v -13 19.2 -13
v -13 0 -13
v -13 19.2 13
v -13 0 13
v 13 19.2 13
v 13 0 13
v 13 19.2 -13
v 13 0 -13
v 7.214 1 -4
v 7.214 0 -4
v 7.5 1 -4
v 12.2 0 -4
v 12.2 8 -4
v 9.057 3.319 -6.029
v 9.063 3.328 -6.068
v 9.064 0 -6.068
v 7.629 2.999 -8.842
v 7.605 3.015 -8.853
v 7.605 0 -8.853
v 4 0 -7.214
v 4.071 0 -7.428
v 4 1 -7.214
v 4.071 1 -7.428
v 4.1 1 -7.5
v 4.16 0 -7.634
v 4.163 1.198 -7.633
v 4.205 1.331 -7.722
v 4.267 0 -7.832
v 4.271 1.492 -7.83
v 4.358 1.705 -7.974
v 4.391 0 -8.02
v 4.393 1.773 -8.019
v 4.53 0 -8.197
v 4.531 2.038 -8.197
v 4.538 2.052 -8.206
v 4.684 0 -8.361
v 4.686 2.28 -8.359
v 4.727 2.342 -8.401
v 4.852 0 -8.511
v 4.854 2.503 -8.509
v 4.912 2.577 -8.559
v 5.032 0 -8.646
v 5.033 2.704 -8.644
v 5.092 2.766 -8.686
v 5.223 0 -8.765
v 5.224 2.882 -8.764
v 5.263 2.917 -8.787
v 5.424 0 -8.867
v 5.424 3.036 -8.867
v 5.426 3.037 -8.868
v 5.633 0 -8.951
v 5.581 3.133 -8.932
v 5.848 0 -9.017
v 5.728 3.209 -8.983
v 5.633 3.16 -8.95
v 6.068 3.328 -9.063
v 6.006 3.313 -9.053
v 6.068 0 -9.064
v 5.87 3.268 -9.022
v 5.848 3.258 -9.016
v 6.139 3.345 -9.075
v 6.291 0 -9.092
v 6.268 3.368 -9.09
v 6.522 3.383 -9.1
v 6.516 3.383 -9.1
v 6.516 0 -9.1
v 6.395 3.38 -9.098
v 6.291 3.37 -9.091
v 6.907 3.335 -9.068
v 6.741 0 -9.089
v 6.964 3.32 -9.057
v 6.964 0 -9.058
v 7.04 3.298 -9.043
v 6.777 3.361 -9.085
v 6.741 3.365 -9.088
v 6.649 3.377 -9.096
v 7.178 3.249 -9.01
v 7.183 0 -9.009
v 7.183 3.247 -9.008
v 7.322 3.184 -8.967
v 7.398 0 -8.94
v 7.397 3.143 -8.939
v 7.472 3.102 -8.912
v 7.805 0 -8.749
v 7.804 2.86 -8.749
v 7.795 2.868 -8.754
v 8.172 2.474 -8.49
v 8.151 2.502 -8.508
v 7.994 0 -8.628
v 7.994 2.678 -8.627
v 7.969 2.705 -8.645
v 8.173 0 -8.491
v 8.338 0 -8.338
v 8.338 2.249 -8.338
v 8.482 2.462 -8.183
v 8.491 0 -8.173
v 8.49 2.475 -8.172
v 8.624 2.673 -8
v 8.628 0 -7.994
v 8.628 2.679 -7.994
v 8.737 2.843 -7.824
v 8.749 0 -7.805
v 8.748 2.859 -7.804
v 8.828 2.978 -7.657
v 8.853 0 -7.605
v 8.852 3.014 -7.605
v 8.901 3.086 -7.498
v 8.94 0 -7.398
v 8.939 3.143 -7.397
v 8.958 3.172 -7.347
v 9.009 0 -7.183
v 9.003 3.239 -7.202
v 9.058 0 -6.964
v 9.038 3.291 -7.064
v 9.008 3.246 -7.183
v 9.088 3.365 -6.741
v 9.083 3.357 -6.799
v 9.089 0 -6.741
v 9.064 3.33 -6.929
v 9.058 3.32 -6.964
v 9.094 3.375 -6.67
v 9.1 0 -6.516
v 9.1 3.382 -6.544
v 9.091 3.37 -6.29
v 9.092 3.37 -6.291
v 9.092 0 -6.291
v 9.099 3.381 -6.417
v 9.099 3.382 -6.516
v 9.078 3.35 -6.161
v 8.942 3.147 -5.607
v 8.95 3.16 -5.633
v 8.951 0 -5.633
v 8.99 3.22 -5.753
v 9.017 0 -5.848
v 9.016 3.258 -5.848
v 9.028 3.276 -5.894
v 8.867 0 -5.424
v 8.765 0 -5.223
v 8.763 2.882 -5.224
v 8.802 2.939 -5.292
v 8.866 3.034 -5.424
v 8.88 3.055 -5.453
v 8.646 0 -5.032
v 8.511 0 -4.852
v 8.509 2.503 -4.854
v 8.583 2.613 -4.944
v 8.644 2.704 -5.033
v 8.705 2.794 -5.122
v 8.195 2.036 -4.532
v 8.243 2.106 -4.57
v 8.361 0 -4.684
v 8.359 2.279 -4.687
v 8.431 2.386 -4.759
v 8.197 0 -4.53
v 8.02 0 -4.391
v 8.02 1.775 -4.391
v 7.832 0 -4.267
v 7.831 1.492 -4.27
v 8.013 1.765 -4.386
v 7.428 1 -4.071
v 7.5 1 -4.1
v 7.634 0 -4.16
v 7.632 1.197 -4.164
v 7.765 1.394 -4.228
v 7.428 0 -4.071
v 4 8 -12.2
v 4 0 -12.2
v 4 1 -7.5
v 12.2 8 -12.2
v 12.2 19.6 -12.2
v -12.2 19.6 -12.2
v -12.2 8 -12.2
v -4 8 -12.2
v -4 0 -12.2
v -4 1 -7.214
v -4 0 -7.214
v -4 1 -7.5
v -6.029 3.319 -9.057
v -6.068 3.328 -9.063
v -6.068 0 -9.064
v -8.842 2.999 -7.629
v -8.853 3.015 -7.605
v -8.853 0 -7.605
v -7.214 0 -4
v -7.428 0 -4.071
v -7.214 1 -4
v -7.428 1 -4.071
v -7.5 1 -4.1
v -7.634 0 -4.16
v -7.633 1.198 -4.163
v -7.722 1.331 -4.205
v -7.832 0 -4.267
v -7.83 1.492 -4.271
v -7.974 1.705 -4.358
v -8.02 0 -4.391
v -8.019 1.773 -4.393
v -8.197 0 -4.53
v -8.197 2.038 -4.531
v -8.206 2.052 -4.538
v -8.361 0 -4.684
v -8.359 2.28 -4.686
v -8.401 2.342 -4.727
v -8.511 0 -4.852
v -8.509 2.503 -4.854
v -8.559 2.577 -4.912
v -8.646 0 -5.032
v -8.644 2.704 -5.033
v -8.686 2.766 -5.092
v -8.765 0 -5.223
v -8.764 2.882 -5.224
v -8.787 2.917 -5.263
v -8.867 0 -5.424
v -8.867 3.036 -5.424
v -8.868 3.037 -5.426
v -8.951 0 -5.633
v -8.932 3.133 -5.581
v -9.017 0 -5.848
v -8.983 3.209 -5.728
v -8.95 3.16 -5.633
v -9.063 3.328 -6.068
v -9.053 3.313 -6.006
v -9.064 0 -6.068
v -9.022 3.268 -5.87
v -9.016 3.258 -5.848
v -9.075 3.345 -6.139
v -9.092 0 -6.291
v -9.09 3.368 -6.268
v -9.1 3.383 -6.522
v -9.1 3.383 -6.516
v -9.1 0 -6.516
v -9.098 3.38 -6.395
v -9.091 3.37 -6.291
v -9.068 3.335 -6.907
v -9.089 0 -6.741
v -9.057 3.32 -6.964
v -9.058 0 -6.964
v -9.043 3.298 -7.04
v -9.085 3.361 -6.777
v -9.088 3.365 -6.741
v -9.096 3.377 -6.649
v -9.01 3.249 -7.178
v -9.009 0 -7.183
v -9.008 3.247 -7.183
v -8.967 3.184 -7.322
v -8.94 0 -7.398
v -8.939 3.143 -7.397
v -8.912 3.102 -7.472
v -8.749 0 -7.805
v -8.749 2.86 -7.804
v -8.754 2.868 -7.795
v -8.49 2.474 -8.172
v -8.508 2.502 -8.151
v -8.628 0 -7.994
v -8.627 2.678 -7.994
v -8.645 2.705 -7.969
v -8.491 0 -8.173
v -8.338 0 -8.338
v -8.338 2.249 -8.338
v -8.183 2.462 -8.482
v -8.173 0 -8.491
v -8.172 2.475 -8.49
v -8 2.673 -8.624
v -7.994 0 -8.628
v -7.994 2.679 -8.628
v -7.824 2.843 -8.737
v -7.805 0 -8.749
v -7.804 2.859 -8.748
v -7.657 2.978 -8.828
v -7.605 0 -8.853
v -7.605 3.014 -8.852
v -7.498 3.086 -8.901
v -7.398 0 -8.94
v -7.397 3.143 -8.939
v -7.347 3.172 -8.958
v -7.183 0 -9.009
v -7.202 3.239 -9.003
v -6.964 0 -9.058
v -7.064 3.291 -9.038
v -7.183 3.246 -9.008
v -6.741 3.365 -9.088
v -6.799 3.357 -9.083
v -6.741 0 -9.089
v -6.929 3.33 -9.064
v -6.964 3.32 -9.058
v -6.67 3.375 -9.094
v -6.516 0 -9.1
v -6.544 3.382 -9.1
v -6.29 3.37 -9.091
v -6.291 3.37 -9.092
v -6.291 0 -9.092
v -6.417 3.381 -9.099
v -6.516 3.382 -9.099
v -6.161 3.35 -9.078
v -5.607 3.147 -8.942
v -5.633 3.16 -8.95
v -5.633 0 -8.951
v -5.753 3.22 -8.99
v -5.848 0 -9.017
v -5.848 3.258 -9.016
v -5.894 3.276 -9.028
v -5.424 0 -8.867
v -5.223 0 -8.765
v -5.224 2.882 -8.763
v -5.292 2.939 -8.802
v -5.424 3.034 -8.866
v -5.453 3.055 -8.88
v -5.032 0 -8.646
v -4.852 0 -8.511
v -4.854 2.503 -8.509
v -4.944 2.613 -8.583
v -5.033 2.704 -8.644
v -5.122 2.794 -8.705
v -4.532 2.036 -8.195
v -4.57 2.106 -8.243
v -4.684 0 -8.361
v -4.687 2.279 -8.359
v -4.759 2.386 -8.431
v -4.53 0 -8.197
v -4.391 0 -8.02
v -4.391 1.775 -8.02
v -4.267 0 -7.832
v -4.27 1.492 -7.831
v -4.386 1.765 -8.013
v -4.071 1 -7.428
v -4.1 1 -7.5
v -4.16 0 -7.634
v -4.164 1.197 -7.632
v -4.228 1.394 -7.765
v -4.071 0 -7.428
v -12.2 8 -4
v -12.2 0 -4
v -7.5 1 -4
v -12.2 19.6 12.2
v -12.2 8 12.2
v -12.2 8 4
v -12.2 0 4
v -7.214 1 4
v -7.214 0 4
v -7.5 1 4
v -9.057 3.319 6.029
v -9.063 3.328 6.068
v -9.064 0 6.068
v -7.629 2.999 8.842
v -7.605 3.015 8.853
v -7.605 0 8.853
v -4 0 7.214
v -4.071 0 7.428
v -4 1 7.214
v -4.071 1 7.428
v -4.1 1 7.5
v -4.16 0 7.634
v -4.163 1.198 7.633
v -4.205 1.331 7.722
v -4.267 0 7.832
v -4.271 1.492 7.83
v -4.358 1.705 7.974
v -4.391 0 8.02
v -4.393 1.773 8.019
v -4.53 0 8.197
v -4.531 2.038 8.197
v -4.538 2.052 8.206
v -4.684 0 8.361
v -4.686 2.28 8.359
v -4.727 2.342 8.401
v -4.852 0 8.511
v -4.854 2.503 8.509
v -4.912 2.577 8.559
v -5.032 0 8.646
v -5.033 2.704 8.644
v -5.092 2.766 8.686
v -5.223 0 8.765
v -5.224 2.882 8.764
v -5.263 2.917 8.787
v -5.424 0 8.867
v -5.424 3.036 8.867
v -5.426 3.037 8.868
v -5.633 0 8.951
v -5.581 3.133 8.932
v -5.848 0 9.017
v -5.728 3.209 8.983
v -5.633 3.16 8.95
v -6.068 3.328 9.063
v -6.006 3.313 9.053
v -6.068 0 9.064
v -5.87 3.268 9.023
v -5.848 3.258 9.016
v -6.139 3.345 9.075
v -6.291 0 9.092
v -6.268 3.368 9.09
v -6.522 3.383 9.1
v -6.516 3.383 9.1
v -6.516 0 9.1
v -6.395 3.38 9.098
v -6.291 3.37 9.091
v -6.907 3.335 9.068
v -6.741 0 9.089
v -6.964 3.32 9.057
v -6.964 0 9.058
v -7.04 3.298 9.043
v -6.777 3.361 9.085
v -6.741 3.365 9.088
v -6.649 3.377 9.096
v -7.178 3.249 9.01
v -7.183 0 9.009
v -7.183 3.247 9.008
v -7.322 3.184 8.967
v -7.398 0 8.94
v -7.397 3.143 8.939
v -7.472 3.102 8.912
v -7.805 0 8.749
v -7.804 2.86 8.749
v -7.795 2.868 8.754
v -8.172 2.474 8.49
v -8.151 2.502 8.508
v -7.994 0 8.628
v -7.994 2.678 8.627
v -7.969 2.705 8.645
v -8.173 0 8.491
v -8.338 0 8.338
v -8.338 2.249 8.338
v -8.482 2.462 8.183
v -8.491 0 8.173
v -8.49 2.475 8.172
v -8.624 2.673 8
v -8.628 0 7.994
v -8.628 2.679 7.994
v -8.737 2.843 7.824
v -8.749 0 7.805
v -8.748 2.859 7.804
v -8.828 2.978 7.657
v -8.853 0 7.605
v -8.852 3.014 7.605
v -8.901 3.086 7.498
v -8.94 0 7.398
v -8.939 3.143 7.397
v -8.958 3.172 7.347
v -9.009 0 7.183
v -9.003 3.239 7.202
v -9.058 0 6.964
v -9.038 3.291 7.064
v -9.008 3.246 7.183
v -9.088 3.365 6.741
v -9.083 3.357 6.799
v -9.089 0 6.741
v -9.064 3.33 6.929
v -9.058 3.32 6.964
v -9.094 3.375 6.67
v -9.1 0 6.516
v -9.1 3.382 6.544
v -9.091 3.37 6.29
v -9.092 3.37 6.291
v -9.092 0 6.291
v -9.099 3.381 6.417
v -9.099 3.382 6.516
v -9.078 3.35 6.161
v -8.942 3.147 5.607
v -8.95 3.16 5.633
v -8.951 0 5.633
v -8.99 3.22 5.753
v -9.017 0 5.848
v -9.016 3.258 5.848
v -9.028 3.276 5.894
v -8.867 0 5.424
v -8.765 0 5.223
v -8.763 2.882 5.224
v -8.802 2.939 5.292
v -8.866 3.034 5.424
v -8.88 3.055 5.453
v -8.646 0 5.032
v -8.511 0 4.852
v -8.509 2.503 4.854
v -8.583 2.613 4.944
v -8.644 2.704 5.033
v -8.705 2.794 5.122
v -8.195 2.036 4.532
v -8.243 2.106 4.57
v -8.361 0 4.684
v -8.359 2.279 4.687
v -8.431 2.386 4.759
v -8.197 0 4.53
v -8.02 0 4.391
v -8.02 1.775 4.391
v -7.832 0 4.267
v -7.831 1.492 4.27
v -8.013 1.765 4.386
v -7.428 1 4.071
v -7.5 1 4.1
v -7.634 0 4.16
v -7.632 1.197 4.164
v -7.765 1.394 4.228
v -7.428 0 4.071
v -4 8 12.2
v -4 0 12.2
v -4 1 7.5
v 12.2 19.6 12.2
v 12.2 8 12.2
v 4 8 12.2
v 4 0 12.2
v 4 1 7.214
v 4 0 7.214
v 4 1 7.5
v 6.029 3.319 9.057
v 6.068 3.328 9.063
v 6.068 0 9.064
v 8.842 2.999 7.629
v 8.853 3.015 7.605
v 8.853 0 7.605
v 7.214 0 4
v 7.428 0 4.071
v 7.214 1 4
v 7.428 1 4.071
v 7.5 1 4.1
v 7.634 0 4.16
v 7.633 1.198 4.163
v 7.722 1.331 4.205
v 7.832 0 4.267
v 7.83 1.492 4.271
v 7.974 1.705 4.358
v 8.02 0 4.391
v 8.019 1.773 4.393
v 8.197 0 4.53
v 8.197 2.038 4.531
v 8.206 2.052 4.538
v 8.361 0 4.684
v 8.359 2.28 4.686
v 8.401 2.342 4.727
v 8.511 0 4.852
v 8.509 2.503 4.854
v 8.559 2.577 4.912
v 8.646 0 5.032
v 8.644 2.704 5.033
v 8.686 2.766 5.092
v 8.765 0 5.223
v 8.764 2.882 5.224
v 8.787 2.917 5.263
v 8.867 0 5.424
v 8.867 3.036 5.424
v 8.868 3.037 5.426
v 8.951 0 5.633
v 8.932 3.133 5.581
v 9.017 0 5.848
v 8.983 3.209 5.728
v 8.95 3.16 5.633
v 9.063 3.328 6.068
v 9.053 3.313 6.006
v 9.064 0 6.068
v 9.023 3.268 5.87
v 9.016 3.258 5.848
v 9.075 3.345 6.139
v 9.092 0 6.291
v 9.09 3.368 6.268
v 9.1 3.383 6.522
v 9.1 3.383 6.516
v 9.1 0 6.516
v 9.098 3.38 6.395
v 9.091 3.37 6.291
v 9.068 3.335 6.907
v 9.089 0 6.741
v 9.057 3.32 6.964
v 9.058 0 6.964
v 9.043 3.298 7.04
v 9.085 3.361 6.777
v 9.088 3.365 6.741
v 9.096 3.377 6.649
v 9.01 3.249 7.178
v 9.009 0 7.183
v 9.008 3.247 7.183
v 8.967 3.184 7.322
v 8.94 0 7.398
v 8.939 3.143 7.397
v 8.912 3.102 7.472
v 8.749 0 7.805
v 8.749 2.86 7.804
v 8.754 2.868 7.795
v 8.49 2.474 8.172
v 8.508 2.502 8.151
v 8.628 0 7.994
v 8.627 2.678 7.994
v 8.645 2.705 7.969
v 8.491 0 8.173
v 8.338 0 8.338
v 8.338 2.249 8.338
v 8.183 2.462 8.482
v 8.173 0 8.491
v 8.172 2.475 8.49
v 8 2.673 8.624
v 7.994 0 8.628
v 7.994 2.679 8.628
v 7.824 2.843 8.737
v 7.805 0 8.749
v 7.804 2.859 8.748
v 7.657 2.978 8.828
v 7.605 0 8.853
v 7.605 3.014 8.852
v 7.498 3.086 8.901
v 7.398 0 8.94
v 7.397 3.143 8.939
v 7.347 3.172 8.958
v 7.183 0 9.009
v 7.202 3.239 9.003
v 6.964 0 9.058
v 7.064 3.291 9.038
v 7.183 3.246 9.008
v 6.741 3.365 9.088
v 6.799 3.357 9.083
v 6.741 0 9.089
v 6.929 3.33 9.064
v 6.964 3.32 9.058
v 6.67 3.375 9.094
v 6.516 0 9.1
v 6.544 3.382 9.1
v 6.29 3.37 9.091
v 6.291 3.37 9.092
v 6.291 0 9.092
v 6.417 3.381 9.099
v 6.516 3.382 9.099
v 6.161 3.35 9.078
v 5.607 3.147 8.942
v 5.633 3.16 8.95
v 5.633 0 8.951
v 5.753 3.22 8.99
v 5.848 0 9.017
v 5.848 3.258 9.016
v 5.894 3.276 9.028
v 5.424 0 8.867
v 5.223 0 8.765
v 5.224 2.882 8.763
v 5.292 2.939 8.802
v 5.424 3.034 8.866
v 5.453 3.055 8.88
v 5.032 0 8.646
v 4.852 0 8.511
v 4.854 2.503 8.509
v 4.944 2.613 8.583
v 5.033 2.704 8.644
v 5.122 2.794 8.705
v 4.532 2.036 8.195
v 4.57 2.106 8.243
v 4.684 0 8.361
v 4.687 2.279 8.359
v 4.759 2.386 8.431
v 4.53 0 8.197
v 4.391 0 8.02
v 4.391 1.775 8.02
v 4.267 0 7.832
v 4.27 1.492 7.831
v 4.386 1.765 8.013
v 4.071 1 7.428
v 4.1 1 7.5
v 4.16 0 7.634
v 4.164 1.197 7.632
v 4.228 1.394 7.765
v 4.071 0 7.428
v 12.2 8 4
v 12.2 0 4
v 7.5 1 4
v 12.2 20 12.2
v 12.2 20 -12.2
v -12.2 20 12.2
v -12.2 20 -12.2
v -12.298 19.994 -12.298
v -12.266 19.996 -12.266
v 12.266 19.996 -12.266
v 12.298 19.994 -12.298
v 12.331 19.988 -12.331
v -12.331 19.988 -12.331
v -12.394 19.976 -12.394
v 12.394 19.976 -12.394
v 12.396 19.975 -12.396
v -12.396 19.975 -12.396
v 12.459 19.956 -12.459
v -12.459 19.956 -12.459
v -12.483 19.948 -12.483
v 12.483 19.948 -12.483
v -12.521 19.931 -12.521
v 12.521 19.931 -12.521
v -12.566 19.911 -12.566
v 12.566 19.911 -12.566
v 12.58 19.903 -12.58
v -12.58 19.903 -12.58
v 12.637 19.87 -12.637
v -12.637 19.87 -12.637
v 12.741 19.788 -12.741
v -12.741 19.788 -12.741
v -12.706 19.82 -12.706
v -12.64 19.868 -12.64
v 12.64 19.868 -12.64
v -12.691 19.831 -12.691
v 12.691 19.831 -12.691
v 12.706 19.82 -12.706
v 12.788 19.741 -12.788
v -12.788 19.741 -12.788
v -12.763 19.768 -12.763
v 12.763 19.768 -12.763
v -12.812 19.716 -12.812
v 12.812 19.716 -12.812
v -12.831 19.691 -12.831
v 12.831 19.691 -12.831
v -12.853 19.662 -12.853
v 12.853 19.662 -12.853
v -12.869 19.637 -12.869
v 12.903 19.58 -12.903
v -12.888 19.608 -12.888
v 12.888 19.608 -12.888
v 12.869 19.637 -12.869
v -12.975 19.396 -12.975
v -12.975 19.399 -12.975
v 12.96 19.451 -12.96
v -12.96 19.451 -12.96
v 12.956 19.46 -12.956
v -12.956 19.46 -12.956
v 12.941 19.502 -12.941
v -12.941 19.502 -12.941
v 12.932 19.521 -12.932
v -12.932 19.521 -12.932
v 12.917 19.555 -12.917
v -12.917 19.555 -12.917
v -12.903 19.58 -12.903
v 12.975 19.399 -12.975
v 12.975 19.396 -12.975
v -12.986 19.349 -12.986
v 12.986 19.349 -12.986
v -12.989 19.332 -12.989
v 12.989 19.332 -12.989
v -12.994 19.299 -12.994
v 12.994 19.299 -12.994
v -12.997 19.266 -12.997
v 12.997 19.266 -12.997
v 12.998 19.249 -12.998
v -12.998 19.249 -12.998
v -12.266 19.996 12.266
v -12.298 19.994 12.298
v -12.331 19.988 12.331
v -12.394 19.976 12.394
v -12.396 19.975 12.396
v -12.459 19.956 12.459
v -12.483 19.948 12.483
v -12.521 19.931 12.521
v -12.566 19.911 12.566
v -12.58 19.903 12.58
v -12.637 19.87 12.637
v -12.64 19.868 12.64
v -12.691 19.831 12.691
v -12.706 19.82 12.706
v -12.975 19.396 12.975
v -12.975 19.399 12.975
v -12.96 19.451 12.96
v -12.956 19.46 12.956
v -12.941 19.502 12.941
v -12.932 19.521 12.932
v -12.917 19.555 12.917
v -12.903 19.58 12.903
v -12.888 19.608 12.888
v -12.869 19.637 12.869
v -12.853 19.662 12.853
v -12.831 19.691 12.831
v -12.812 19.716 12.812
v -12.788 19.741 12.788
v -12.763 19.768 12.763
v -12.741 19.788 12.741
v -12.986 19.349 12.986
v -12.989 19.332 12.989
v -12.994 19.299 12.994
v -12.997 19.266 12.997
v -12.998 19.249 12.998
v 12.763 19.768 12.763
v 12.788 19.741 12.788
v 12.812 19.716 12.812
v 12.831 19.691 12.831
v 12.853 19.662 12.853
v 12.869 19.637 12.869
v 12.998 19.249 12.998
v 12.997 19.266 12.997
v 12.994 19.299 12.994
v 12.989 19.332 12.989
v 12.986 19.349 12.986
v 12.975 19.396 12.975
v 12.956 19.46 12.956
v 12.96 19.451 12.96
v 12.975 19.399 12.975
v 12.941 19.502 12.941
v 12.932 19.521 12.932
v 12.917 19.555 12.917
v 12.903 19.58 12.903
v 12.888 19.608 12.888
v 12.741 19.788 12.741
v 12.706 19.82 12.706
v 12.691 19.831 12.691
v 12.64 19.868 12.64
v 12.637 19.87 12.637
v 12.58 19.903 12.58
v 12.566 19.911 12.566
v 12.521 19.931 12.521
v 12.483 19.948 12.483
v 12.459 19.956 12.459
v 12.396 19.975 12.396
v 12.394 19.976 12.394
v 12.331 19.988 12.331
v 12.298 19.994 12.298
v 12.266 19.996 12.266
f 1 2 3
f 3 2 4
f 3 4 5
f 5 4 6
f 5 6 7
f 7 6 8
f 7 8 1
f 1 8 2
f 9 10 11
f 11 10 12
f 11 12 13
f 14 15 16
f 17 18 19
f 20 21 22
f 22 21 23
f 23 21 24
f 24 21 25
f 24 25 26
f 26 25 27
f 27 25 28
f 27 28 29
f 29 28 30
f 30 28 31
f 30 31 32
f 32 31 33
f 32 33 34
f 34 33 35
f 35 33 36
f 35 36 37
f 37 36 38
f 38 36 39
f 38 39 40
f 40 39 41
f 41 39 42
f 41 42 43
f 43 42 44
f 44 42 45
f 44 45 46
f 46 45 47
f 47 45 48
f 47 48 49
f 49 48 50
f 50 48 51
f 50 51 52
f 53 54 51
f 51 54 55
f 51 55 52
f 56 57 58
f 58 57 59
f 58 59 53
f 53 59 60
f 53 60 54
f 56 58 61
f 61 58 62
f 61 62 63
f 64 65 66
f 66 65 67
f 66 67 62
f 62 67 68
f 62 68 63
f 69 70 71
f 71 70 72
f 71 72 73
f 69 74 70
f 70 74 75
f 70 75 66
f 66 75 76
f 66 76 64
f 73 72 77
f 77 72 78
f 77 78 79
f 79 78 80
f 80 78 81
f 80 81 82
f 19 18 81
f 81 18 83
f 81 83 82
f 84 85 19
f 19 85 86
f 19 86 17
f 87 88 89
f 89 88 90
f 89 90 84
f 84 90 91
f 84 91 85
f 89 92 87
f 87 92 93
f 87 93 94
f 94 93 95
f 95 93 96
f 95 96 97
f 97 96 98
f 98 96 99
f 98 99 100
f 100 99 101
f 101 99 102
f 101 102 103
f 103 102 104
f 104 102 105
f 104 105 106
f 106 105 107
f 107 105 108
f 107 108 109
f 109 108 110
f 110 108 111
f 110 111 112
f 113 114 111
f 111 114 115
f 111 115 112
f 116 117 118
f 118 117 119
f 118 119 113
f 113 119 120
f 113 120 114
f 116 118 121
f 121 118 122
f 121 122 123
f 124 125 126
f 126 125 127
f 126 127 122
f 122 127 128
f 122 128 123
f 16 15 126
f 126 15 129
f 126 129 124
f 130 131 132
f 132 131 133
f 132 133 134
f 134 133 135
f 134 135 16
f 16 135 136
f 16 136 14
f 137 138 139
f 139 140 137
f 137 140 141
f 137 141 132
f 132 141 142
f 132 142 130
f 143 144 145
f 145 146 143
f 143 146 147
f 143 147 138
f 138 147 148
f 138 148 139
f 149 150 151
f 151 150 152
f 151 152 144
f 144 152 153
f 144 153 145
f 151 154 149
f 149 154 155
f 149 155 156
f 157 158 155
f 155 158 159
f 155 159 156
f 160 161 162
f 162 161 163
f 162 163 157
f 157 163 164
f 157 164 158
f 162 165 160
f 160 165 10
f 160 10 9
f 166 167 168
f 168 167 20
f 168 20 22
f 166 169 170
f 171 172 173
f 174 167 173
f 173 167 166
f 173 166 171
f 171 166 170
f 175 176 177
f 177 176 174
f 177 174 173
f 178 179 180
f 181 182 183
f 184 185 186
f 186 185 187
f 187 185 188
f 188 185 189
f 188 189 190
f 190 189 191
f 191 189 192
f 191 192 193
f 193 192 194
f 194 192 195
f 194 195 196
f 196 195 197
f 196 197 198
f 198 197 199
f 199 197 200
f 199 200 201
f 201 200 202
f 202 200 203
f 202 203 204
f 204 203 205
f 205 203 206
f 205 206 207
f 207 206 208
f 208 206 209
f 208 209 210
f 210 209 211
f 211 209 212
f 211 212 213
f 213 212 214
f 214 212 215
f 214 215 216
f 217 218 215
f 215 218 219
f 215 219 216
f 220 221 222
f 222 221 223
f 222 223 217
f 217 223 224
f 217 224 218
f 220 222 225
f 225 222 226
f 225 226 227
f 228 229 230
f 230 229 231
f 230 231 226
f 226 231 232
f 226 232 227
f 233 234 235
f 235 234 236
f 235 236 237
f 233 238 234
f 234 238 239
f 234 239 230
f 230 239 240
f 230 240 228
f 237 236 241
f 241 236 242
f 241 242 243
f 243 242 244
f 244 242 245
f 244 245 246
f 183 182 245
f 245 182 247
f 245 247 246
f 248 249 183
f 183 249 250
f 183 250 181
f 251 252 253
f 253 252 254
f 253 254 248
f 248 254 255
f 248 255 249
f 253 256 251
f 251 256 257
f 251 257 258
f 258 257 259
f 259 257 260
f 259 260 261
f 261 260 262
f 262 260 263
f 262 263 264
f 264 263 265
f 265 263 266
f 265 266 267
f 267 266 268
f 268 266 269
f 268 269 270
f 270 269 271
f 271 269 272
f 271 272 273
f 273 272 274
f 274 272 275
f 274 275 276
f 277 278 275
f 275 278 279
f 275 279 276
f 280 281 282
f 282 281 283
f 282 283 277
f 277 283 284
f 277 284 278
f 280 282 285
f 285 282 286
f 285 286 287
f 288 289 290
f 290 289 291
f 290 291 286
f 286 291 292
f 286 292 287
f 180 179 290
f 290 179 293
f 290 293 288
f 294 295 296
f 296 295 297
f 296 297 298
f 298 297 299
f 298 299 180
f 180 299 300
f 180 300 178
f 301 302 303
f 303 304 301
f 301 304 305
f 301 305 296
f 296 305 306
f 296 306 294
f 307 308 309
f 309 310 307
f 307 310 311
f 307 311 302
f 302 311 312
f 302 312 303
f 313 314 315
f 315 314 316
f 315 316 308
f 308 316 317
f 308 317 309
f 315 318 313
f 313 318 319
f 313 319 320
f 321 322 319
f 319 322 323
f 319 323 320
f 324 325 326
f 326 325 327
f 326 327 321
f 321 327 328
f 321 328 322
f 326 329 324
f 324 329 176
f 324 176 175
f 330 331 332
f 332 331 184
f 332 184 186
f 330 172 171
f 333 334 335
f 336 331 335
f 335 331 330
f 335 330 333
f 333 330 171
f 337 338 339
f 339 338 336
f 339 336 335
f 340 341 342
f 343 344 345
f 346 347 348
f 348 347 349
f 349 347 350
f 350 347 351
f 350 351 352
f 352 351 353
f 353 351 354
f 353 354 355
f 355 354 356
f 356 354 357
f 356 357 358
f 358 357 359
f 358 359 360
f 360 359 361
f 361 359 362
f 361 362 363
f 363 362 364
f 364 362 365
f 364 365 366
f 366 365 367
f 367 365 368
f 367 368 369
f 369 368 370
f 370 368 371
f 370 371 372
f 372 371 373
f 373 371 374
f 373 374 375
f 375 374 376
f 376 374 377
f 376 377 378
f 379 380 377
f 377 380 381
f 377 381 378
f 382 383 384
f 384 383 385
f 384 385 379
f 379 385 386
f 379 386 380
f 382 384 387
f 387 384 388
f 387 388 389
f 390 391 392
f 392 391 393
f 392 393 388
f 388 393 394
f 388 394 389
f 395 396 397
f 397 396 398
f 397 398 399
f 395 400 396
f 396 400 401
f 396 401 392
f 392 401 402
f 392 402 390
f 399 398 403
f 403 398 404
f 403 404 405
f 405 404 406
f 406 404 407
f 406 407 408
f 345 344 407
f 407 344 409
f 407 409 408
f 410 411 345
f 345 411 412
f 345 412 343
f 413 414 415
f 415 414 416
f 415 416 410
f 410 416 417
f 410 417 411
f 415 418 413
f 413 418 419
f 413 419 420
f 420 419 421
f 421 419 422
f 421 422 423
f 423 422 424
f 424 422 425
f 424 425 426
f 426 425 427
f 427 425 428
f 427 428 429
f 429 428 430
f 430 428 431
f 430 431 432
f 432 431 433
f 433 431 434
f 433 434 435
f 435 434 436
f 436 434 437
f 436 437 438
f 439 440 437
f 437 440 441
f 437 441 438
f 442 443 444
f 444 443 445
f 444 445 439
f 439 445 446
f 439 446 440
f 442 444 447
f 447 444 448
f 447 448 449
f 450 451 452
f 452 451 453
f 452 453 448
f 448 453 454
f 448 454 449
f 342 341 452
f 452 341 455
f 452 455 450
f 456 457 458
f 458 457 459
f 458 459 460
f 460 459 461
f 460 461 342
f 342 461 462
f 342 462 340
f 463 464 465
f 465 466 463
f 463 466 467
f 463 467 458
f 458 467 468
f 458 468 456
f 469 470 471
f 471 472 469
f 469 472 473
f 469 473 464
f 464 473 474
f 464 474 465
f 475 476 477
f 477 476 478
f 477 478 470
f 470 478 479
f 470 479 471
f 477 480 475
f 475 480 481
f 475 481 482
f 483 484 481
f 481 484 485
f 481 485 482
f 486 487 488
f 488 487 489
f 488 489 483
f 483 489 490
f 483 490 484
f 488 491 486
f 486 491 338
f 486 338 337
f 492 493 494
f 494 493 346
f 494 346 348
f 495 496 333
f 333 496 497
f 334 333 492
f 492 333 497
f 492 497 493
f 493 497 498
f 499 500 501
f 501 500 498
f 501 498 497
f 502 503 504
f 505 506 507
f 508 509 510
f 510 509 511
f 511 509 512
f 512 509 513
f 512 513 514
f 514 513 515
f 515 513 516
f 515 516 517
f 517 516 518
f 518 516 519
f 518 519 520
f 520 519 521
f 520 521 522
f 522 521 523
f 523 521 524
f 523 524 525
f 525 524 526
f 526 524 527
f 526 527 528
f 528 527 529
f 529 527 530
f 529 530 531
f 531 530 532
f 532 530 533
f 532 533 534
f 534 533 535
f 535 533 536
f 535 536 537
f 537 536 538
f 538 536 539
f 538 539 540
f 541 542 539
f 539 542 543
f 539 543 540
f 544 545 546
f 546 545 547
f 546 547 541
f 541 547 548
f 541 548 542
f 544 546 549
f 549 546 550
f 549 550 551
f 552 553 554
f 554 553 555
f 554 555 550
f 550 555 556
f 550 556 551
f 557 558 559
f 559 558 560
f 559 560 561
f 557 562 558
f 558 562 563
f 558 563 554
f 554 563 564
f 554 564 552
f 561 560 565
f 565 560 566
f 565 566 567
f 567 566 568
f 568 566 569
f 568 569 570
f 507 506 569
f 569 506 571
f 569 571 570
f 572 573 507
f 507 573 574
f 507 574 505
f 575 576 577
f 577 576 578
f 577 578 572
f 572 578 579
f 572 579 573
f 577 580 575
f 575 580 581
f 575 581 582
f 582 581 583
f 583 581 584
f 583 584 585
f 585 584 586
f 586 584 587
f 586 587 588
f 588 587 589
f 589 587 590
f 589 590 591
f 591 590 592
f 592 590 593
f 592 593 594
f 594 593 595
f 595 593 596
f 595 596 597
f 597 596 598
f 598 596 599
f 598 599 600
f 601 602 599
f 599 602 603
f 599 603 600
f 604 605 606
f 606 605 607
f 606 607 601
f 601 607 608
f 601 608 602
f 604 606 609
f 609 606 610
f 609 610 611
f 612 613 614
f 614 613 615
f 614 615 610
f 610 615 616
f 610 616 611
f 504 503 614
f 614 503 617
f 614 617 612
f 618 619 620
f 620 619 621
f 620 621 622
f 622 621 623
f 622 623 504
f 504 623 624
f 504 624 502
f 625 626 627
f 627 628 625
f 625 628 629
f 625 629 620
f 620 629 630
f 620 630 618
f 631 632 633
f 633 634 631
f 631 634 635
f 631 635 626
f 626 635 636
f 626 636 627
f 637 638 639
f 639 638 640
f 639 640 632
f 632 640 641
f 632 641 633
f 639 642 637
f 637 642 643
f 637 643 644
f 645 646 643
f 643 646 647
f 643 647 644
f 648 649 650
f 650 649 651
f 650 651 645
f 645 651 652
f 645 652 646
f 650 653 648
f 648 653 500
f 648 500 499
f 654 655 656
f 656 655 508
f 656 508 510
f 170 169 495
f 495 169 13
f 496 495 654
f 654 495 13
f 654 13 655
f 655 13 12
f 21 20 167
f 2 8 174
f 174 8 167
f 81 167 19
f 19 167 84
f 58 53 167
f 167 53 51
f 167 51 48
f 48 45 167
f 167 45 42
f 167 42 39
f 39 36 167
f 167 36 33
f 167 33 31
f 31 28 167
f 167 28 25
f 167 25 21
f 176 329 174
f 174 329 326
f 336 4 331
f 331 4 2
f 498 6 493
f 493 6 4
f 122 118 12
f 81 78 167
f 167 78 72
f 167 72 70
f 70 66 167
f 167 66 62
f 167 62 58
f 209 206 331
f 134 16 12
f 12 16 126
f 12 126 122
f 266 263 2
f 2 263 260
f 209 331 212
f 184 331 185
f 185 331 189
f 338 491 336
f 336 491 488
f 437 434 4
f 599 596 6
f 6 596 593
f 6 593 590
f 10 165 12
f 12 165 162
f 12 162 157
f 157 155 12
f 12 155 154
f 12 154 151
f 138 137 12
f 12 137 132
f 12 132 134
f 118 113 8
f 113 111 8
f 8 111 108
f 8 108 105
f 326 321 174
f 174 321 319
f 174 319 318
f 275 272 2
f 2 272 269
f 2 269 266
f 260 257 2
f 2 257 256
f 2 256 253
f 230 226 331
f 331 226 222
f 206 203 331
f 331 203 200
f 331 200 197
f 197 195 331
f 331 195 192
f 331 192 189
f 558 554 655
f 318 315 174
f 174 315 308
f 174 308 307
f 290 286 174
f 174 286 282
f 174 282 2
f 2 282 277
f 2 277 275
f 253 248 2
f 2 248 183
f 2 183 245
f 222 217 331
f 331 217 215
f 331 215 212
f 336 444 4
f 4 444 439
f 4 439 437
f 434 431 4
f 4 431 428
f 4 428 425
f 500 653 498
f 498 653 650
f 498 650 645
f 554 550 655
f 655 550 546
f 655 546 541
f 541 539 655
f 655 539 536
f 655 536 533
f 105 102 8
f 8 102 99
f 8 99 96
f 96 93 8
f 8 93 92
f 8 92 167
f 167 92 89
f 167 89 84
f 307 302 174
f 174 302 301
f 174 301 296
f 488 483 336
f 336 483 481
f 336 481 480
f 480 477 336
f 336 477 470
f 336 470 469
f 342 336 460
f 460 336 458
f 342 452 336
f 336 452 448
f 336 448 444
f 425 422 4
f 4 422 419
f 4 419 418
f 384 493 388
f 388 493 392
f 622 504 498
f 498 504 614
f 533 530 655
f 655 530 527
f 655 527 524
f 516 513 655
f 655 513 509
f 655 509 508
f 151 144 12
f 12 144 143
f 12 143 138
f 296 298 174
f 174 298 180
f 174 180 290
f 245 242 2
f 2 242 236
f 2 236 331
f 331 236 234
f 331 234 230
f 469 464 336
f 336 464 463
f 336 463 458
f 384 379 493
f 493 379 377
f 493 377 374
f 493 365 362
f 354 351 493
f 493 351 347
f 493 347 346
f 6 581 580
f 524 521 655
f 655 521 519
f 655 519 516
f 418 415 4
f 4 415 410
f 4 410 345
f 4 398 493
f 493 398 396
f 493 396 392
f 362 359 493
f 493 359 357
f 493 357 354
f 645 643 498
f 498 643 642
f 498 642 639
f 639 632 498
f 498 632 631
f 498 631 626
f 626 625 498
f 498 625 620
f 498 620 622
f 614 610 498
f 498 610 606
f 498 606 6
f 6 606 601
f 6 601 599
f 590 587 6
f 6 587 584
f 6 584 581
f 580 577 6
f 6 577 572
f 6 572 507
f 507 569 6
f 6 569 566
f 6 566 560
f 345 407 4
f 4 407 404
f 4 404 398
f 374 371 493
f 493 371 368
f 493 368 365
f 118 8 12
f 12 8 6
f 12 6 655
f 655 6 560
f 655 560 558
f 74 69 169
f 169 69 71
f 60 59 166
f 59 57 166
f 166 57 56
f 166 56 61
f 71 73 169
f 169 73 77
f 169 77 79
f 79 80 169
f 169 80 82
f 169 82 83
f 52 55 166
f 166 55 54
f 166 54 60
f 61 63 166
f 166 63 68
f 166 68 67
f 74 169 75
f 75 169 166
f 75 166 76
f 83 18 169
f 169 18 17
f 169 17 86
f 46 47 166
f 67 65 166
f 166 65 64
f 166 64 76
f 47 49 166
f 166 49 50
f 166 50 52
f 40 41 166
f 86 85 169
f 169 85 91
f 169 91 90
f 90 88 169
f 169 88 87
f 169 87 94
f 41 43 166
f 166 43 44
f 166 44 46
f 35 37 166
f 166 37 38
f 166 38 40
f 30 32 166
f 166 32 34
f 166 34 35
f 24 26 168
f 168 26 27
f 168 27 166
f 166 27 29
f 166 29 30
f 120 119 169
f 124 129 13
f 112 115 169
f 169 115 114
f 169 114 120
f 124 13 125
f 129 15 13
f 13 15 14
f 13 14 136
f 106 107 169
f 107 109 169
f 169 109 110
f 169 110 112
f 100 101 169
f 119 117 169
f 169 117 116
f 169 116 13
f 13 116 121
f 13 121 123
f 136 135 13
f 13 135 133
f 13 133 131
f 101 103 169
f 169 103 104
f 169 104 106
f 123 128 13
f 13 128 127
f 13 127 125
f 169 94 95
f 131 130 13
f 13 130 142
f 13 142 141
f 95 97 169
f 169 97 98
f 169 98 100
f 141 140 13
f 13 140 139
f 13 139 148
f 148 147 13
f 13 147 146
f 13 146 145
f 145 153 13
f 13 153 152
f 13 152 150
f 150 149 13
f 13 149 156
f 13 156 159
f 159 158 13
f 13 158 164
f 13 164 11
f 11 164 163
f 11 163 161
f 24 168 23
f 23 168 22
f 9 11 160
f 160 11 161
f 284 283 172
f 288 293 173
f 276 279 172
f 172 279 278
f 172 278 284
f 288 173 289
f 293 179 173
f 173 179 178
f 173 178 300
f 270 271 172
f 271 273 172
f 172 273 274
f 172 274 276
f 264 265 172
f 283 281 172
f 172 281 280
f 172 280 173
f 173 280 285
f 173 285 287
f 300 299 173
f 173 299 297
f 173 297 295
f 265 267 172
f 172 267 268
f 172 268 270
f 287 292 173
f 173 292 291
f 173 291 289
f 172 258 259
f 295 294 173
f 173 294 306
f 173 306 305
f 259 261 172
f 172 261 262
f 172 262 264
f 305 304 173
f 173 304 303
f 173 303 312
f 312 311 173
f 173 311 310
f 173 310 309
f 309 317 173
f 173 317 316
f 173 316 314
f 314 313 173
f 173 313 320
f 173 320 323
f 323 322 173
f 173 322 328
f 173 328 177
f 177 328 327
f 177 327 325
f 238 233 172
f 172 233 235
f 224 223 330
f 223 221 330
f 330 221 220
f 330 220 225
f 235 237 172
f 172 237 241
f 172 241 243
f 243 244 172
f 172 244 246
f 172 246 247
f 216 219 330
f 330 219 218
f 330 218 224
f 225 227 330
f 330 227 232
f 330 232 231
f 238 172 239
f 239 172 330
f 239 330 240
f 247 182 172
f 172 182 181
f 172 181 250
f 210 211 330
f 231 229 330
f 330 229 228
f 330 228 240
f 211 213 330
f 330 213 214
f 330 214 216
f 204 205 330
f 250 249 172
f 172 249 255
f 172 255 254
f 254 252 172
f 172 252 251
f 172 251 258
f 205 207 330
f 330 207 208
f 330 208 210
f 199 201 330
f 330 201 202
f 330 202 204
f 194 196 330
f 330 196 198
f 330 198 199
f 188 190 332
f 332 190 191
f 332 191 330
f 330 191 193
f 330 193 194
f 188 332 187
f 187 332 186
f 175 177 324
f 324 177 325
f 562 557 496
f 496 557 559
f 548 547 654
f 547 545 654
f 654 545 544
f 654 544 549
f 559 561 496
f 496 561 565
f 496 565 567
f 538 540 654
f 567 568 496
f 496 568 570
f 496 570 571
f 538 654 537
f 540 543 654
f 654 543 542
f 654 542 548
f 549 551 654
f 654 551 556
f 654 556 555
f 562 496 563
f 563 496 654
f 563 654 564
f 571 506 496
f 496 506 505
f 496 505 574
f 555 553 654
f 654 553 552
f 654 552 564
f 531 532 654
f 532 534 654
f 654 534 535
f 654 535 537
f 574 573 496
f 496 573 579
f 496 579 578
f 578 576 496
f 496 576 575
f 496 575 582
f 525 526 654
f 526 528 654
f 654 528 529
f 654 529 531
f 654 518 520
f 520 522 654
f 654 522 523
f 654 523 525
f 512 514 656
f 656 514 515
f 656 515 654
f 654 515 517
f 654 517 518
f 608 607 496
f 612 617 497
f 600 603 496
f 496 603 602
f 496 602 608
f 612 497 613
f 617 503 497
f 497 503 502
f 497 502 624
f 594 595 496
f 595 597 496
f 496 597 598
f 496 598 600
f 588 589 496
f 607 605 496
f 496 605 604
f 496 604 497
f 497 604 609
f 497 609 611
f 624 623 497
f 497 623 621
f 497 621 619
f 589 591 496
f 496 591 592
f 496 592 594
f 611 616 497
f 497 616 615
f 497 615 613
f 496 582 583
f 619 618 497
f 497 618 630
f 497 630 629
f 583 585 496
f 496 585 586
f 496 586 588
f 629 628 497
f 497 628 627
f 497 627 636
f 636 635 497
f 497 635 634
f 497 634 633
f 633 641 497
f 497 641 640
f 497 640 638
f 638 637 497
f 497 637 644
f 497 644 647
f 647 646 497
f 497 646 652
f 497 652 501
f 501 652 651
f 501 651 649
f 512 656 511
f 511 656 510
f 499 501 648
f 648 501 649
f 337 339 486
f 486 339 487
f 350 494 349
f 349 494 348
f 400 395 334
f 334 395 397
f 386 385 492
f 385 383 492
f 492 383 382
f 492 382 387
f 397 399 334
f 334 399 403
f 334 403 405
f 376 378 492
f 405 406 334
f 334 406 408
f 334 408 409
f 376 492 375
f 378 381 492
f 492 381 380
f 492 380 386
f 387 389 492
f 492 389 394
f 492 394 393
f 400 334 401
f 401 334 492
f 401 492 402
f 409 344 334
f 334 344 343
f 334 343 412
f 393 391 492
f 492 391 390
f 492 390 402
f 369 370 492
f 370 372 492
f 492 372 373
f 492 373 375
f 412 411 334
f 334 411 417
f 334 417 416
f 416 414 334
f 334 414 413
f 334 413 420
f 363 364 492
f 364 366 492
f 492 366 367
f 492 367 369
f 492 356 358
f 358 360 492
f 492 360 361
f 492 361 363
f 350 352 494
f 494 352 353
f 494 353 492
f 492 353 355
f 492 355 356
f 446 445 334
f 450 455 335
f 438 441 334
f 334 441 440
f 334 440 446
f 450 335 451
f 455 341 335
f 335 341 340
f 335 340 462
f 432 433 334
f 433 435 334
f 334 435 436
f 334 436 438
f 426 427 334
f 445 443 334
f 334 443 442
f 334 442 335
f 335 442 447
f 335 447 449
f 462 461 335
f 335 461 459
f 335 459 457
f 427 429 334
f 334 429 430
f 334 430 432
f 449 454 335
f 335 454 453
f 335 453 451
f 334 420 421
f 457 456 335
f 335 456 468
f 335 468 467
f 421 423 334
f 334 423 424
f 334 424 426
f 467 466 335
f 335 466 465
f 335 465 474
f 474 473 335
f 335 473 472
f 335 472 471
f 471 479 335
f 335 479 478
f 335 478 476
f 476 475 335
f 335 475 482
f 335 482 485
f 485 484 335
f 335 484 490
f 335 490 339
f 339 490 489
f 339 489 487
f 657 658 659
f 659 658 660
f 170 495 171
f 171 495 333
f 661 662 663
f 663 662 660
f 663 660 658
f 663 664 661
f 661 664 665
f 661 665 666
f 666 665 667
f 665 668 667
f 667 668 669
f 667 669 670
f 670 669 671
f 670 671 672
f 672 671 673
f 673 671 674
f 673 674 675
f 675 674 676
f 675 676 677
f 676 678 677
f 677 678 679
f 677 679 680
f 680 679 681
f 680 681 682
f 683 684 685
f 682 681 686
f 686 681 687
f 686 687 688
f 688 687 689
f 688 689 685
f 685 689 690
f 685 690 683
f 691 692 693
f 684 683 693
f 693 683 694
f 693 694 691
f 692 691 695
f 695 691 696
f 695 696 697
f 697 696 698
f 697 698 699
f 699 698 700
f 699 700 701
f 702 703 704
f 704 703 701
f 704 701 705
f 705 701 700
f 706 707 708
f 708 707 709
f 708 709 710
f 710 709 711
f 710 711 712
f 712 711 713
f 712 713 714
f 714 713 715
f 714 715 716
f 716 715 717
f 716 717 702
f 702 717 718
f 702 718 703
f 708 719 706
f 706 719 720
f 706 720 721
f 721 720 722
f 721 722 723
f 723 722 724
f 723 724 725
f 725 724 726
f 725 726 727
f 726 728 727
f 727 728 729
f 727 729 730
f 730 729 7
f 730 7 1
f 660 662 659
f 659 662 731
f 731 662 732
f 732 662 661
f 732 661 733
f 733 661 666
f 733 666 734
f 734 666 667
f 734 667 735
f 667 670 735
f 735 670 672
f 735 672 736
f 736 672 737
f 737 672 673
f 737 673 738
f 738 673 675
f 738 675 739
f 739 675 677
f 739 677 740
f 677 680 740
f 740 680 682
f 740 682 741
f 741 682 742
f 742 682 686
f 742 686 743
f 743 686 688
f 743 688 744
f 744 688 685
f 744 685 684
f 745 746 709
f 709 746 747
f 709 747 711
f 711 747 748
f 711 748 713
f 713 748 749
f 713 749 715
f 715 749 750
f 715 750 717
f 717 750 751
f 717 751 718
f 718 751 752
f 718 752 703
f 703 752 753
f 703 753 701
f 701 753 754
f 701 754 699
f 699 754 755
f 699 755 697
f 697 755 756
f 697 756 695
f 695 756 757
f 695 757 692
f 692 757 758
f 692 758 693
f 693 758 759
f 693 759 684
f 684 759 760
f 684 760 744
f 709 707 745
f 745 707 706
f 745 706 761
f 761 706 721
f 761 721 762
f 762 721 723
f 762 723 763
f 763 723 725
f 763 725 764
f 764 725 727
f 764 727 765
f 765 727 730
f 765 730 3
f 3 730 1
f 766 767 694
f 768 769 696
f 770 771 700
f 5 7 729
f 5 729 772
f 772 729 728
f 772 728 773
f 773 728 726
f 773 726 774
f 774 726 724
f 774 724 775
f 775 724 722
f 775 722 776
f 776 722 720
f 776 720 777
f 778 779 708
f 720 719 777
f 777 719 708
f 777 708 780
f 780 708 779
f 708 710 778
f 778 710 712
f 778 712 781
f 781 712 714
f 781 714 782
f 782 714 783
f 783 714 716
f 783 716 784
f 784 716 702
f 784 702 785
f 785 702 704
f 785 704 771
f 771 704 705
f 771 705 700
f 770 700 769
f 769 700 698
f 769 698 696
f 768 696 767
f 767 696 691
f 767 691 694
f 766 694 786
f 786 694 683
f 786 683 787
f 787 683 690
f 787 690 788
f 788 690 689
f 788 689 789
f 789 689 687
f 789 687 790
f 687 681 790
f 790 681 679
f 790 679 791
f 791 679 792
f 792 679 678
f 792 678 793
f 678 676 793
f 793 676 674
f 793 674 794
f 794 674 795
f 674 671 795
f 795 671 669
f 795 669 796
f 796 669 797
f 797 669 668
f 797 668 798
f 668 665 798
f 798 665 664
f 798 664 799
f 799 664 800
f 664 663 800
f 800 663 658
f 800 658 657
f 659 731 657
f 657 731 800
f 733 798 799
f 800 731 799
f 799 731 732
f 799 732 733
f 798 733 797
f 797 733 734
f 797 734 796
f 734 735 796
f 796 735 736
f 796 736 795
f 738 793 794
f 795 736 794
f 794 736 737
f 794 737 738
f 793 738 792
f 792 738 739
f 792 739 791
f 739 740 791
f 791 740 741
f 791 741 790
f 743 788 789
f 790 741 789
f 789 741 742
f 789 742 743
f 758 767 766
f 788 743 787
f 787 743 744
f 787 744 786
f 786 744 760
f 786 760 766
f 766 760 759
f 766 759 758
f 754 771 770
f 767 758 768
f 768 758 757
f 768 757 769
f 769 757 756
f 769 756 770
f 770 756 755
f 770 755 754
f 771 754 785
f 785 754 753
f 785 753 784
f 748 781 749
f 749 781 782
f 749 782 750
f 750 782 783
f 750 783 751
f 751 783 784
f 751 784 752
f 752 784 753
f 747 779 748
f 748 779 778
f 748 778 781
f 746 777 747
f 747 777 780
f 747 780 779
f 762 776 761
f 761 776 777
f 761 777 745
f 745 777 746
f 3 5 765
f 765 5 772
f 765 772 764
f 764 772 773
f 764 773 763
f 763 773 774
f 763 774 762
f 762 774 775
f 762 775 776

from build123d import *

# Parameters (mm, degrees)
SKETCH1_W           = 26
SKETCH1_H           = 26
BOSS_EXTRUDE1_DEPTH = 8
SKETCH24_W          = 26
SKETCH24_H          = 26
SKETCH24_W_2        = 24.4
SKETCH24_H_2        = 24.4
BOSS_EXTRUDE5_DEPTH = 11.6
SKETCH27_W          = 26
SKETCH27_H          = 26
BOSS_EXTRUDE7_DEPTH = 0.4
FILLET2_R           = 0.8


with BuildPart() as part:
    # Sketch1 → Boss-Extrude1 (new body)
    with BuildSketch(Plane(origin=(0, 0, 0), x_dir=(1, 0, 0), z_dir=(0, 1, 0))):
        Rectangle(SKETCH1_W, SKETCH1_H)
        with BuildLine():
            Line((-4, 7.214142843), (-4, 12.2))
            Line((-4, 12.2), (4, 12.2))
            Line((4, 12.2), (4, 7.214142843))
            ThreePointArc((4, 7.214142843), (8.338477631, 8.338477631), (7.214142843, 4))
            Line((7.214142843, 4), (12.2, 4))
            Line((12.2, 4), (12.2, -4))
            Line((12.2, -4), (7.214142843, -4))
            ThreePointArc((7.214142843, -4), (8.338477631, -8.338477631), (4, -7.214142843))
            Line((4, -7.214142843), (4, -12.2))
            Line((4, -12.2), (-4, -12.2))
            Line((-4, -12.2), (-4, -7.214142843))
            ThreePointArc((-4, -7.214142843), (-8.338477631, -8.338477631), (-7.214142843, -4))
            Line((-7.214142843, -4), (-12.2, -4))
            Line((-12.2, -4), (-12.2, 4))
            Line((-12.2, 4), (-7.214142843, 4))
            ThreePointArc((-7.214142843, 4), (-8.338477631, 8.338477631), (-4, 7.214142843))
        make_face(mode=Mode.SUBTRACT)
    extrude(amount=BOSS_EXTRUDE1_DEPTH)

    # Sketch21 → Cut-Loft5 section 0
    with BuildSketch(Plane(origin=(0, 1, 0), x_dir=(1, 0, 0), z_dir=(0, 1, 0))):
        with BuildLine():
            Line((-7.5, -7.5), (7.5, -7.5))
            Line((7.5, -7.5), (7.5, 7.5))
            Line((7.5, 7.5), (-7.5, 7.5))
            Line((-7.5, 7.5), (-7.5, -7.5))
        make_face()
    # Sketch22 → Cut-Loft5 section 1
    with BuildSketch(Plane(origin=(0, 8, 0), x_dir=(1, 0, 0), z_dir=(0, 1, 0))):
        with BuildLine():
            Line((-12.2, -12.2), (12.2, -12.2))
            Line((12.2, -12.2), (12.2, 12.2))
            Line((12.2, 12.2), (-12.2, 12.2))
            Line((-12.2, 12.2), (-12.2, -12.2))
        make_face()
    loft(mode=Mode.SUBTRACT)

    # Sketch24 → Boss-Extrude5 (add)
    with BuildSketch(Plane(origin=(0, 8, 0), x_dir=(1, 0, 0), z_dir=(0, 1, 0))):
        Rectangle(SKETCH24_W, SKETCH24_H)
        Rectangle(SKETCH24_W_2, SKETCH24_H_2, mode=Mode.SUBTRACT)
    extrude(amount=BOSS_EXTRUDE5_DEPTH)

    # Sketch27 → Boss-Extrude7 (add)
    with BuildSketch(Plane(origin=(0, 19.6, 0), x_dir=(1, 0, 0), z_dir=(0, 1, 0))):
        Rectangle(SKETCH27_W, SKETCH27_H)
    extrude(amount=BOSS_EXTRUDE7_DEPTH)

    # Fillet2
    fillet2_edges = [part.edges().sort_by_distance(p)[0] for p in [
        (13, 20, 0),
        (0, 20, -13),
        (-13, 20, 0),
        (0, 20, 13),
    ]]
    fillet(fillet2_edges, radius=FILLET2_R)


solid = part.part
